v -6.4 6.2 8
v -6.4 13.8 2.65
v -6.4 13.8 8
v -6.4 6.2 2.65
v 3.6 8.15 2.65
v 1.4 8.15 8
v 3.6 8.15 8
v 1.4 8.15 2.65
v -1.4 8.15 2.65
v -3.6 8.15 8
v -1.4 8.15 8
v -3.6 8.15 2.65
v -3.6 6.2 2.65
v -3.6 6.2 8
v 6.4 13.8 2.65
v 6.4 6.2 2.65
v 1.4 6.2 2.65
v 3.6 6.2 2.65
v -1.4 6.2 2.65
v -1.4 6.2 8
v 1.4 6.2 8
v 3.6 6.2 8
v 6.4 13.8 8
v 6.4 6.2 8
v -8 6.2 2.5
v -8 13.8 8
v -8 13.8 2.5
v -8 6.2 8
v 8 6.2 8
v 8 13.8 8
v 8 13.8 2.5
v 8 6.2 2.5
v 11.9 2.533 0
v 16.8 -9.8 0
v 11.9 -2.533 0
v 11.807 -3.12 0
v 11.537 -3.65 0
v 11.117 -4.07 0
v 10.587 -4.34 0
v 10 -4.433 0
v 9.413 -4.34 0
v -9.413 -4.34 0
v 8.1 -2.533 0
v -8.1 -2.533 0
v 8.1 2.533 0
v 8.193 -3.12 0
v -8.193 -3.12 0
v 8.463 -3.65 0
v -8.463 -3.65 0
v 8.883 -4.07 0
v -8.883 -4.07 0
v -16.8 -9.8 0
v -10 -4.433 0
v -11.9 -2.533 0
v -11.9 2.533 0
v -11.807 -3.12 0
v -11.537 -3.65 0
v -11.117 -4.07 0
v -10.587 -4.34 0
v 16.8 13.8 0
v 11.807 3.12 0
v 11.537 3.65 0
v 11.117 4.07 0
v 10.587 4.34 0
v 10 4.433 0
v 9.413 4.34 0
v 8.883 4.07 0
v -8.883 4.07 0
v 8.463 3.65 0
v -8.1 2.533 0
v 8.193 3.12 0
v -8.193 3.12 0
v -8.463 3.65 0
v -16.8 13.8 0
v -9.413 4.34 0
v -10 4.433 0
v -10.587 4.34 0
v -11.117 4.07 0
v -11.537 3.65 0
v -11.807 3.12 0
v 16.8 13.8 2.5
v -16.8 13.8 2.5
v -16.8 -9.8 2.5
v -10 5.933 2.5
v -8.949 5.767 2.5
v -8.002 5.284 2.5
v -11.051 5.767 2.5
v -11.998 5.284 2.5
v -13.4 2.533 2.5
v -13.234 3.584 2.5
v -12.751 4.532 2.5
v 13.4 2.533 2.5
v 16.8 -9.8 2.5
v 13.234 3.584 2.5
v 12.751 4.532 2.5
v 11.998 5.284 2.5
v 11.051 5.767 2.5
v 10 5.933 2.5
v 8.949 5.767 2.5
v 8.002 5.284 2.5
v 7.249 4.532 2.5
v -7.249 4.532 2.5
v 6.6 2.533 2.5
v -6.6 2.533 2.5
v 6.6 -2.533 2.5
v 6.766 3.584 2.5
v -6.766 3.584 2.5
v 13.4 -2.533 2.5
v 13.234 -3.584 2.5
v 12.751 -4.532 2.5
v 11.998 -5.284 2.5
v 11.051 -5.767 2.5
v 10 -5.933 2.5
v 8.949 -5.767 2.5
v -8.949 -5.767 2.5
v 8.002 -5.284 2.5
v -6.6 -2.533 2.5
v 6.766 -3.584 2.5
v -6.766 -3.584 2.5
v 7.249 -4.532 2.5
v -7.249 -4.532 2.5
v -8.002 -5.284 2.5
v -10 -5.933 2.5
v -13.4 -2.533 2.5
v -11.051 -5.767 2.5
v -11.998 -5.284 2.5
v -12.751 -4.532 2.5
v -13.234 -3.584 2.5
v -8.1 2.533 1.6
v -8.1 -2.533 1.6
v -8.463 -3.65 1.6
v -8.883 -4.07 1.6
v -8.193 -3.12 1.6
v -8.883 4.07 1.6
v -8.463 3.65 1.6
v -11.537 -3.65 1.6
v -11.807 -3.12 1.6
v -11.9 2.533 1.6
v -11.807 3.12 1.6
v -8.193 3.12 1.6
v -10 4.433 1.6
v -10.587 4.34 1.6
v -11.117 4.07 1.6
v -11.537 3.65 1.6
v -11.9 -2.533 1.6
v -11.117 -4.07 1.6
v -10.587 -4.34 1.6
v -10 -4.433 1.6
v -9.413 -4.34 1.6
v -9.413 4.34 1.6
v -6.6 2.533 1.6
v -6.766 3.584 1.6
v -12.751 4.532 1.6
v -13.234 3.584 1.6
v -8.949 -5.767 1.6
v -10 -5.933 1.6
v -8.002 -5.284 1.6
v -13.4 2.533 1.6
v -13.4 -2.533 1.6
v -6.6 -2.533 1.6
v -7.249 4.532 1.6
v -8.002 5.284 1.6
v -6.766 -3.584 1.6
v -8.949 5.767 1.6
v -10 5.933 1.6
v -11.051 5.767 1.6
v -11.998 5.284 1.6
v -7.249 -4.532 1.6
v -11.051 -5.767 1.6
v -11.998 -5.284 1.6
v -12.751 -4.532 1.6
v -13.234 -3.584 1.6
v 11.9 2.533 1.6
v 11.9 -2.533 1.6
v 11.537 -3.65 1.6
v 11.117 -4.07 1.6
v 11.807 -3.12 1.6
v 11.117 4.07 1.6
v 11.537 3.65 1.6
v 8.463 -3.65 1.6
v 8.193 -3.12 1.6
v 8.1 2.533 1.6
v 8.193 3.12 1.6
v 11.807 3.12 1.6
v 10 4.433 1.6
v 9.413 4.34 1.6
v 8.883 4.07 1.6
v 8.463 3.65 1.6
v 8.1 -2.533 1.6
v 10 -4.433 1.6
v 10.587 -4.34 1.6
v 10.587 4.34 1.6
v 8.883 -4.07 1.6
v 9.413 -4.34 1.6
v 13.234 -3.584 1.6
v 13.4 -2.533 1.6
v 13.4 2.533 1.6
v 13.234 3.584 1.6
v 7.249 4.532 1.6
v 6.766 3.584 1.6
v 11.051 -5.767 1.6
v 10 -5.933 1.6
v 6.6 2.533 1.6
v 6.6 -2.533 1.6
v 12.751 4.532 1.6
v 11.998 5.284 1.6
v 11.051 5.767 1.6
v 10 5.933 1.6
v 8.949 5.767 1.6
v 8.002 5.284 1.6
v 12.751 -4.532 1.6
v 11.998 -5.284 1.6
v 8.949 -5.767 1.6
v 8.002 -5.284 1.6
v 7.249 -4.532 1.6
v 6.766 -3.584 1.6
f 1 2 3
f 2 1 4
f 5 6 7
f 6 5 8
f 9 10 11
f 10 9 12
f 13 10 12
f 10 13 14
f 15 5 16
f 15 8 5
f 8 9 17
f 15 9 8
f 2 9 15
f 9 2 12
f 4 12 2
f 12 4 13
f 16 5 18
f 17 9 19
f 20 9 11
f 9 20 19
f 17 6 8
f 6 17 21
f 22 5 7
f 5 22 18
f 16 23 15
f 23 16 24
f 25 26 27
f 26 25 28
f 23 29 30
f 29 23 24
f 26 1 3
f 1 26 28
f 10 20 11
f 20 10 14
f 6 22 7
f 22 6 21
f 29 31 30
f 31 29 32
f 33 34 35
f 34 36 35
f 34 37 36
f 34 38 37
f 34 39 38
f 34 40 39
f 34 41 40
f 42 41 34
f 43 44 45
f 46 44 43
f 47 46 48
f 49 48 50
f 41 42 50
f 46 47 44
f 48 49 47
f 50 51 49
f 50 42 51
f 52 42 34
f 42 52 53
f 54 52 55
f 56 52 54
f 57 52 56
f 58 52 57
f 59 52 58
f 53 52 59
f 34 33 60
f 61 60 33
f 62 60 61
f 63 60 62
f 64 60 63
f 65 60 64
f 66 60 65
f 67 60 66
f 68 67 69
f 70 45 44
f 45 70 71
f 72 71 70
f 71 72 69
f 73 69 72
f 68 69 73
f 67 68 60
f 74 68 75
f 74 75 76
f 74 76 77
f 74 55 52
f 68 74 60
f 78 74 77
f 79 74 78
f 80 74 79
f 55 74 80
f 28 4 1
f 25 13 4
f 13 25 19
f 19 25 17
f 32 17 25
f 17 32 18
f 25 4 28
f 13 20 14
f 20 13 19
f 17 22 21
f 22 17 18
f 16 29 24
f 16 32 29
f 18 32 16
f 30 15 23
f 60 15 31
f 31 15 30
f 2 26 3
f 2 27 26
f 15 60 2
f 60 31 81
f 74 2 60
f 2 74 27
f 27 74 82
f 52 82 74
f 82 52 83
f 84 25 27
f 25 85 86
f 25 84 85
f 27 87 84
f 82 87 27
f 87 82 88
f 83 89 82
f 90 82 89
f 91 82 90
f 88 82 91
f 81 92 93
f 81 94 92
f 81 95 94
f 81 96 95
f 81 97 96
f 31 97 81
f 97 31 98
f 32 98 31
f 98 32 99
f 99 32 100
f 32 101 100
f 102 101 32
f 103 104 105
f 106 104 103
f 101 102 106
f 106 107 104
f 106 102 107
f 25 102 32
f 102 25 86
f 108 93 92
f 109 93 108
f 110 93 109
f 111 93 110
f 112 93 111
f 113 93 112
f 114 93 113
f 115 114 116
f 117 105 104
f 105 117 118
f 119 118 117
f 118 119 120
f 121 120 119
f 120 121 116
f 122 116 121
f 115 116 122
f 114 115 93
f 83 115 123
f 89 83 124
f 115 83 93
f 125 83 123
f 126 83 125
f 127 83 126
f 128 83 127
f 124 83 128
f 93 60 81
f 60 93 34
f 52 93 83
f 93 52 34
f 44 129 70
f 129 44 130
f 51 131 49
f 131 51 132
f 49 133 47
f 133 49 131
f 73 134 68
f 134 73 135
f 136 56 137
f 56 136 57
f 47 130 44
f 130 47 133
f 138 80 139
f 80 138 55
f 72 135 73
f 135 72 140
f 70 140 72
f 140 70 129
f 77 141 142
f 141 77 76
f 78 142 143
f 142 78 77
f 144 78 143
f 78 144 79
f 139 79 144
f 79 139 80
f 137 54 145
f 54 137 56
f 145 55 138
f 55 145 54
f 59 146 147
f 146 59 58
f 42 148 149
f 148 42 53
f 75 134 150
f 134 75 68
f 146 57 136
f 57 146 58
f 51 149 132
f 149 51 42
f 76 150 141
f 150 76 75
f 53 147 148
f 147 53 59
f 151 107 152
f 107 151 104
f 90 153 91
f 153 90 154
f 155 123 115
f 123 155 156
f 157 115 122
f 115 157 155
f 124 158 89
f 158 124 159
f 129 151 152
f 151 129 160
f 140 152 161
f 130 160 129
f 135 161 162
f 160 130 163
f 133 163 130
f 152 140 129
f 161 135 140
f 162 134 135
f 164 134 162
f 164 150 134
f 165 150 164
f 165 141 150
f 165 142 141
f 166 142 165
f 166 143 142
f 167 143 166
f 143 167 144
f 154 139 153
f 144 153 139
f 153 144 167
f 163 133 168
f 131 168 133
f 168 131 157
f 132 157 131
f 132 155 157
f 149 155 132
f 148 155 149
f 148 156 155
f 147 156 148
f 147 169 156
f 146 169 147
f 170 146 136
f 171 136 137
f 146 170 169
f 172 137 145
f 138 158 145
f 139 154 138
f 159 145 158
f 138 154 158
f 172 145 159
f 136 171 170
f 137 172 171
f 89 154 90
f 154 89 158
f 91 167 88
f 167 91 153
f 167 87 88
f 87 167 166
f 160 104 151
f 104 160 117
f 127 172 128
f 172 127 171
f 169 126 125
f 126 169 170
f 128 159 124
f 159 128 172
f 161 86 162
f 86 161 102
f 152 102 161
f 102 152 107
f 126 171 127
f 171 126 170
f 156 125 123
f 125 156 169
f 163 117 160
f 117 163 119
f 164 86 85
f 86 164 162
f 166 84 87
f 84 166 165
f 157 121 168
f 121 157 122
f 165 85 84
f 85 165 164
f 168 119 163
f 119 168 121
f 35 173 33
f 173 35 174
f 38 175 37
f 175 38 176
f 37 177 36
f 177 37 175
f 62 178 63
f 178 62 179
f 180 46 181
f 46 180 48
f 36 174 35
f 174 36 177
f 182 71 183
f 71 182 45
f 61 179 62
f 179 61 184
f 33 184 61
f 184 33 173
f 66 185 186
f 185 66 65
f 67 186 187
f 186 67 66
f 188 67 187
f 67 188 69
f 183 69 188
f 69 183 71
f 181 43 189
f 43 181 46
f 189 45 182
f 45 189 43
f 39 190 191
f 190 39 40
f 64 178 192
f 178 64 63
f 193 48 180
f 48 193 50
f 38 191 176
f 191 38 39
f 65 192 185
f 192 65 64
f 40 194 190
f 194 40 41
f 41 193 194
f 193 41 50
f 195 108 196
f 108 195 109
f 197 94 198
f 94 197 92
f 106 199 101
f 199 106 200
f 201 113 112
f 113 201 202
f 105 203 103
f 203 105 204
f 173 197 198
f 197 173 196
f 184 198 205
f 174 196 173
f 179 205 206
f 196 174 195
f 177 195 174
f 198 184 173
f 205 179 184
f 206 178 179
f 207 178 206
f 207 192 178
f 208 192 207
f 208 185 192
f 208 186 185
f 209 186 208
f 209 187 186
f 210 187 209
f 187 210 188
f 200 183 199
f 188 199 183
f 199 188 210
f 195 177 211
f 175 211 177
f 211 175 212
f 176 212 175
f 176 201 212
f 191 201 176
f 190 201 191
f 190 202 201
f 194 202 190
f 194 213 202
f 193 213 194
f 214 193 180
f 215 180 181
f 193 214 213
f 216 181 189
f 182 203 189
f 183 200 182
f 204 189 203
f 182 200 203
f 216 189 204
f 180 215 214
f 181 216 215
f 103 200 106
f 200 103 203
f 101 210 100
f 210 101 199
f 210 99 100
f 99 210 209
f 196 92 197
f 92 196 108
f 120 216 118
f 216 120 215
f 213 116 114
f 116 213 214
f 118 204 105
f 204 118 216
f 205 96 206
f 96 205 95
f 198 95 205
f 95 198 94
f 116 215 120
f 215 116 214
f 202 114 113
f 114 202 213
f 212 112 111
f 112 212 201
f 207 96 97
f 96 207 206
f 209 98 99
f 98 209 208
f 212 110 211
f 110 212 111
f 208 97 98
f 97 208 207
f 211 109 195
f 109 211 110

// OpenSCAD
$fn=20;

TOR_DIAM            = 3+0.8;
TOR_CAB_DIAM        = 6+0.8;
TOR_DIST_TOP        = 16;

MOTOR_CENTRO_DIAM   = 32;

SWITCH_LARGO        = 12.8;
SWITCH_ANCHO        = 5.7;
SWITCH_ALTO         = 6;
SWITCH_PINS_TOPE    = 2;

BASE_AGUJEROS_TOR   = 20;
BASE_LARGO          = BASE_AGUJEROS_TOR+TOR_DIAM*2+3*2;
BASE_ANCHO          = TOR_DIST_TOP+TOR_DIAM/1.5*3;
BASE_ESPESOR        = 2.5;
BASE_ESPESOR_TOR    = 1.6;

module SwitchHolder()
{
    difference() {
        union() {
            translate([0, 0, (BASE_ESPESOR+SWITCH_ANCHO-0.2)/2]) cube([SWITCH_LARGO+BASE_ESPESOR_TOR*2, BASE_ESPESOR_TOR+SWITCH_ALTO, BASE_ESPESOR+SWITCH_ANCHO-0.2], center=true);
        }
        translate([0,-SWITCH_ANCHO/2+1,SWITCH_ALTO/2+BASE_ESPESOR]) rotate([-90,0,0]) # union() {
            translate([0,0,SWITCH_ALTO/2]) cube([SWITCH_LARGO, SWITCH_ANCHO, SWITCH_ALTO], center=true);
            for(i=[-1,0,1])
                translate([5*i, 0, -BASE_ESPESOR/2]) cube([2.8, SWITCH_ANCHO, BASE_ESPESOR], center=true);
        }
    }
}

// -(BASE_LARGO/2-SWITCH_LARGO/2-BASE_ESPESOR/2), SWITCH_ALTO+BASE_ESPESOR_TOR, SWITCH_ANCHO/2+BASE_ESPESOR


module YAxisSoporteEndstop()
{
    difference() {
        union() {
            translate([0, TOR_DIST_TOP-BASE_ANCHO/2-2.2, BASE_ESPESOR/2]) cube([BASE_LARGO, BASE_ANCHO, BASE_ESPESOR], center=true);
            translate([0, TOR_DIST_TOP-(SWITCH_ALTO+6)/2,0]) SwitchHolder();
        }
        for(i=[-1, 1]) {
            translate([BASE_AGUJEROS_TOR/2*i, 0, 0]) {
                # hull() 
                    for(i=[-1, 1])
                        translate([0, TOR_DIAM/1.5*i, 0]) cylinder(h=BASE_ESPESOR, d=TOR_DIAM);
                # hull() 
                    for(i=[-1, 1])
                        translate([0, TOR_DIAM/1.5*i, BASE_ESPESOR_TOR]) cylinder(h=BASE_ESPESOR_TOR, d=TOR_CAB_DIAM);
            }
        }
    }
}

YAxisSoporteEndstop();
//SwitchHolder();
